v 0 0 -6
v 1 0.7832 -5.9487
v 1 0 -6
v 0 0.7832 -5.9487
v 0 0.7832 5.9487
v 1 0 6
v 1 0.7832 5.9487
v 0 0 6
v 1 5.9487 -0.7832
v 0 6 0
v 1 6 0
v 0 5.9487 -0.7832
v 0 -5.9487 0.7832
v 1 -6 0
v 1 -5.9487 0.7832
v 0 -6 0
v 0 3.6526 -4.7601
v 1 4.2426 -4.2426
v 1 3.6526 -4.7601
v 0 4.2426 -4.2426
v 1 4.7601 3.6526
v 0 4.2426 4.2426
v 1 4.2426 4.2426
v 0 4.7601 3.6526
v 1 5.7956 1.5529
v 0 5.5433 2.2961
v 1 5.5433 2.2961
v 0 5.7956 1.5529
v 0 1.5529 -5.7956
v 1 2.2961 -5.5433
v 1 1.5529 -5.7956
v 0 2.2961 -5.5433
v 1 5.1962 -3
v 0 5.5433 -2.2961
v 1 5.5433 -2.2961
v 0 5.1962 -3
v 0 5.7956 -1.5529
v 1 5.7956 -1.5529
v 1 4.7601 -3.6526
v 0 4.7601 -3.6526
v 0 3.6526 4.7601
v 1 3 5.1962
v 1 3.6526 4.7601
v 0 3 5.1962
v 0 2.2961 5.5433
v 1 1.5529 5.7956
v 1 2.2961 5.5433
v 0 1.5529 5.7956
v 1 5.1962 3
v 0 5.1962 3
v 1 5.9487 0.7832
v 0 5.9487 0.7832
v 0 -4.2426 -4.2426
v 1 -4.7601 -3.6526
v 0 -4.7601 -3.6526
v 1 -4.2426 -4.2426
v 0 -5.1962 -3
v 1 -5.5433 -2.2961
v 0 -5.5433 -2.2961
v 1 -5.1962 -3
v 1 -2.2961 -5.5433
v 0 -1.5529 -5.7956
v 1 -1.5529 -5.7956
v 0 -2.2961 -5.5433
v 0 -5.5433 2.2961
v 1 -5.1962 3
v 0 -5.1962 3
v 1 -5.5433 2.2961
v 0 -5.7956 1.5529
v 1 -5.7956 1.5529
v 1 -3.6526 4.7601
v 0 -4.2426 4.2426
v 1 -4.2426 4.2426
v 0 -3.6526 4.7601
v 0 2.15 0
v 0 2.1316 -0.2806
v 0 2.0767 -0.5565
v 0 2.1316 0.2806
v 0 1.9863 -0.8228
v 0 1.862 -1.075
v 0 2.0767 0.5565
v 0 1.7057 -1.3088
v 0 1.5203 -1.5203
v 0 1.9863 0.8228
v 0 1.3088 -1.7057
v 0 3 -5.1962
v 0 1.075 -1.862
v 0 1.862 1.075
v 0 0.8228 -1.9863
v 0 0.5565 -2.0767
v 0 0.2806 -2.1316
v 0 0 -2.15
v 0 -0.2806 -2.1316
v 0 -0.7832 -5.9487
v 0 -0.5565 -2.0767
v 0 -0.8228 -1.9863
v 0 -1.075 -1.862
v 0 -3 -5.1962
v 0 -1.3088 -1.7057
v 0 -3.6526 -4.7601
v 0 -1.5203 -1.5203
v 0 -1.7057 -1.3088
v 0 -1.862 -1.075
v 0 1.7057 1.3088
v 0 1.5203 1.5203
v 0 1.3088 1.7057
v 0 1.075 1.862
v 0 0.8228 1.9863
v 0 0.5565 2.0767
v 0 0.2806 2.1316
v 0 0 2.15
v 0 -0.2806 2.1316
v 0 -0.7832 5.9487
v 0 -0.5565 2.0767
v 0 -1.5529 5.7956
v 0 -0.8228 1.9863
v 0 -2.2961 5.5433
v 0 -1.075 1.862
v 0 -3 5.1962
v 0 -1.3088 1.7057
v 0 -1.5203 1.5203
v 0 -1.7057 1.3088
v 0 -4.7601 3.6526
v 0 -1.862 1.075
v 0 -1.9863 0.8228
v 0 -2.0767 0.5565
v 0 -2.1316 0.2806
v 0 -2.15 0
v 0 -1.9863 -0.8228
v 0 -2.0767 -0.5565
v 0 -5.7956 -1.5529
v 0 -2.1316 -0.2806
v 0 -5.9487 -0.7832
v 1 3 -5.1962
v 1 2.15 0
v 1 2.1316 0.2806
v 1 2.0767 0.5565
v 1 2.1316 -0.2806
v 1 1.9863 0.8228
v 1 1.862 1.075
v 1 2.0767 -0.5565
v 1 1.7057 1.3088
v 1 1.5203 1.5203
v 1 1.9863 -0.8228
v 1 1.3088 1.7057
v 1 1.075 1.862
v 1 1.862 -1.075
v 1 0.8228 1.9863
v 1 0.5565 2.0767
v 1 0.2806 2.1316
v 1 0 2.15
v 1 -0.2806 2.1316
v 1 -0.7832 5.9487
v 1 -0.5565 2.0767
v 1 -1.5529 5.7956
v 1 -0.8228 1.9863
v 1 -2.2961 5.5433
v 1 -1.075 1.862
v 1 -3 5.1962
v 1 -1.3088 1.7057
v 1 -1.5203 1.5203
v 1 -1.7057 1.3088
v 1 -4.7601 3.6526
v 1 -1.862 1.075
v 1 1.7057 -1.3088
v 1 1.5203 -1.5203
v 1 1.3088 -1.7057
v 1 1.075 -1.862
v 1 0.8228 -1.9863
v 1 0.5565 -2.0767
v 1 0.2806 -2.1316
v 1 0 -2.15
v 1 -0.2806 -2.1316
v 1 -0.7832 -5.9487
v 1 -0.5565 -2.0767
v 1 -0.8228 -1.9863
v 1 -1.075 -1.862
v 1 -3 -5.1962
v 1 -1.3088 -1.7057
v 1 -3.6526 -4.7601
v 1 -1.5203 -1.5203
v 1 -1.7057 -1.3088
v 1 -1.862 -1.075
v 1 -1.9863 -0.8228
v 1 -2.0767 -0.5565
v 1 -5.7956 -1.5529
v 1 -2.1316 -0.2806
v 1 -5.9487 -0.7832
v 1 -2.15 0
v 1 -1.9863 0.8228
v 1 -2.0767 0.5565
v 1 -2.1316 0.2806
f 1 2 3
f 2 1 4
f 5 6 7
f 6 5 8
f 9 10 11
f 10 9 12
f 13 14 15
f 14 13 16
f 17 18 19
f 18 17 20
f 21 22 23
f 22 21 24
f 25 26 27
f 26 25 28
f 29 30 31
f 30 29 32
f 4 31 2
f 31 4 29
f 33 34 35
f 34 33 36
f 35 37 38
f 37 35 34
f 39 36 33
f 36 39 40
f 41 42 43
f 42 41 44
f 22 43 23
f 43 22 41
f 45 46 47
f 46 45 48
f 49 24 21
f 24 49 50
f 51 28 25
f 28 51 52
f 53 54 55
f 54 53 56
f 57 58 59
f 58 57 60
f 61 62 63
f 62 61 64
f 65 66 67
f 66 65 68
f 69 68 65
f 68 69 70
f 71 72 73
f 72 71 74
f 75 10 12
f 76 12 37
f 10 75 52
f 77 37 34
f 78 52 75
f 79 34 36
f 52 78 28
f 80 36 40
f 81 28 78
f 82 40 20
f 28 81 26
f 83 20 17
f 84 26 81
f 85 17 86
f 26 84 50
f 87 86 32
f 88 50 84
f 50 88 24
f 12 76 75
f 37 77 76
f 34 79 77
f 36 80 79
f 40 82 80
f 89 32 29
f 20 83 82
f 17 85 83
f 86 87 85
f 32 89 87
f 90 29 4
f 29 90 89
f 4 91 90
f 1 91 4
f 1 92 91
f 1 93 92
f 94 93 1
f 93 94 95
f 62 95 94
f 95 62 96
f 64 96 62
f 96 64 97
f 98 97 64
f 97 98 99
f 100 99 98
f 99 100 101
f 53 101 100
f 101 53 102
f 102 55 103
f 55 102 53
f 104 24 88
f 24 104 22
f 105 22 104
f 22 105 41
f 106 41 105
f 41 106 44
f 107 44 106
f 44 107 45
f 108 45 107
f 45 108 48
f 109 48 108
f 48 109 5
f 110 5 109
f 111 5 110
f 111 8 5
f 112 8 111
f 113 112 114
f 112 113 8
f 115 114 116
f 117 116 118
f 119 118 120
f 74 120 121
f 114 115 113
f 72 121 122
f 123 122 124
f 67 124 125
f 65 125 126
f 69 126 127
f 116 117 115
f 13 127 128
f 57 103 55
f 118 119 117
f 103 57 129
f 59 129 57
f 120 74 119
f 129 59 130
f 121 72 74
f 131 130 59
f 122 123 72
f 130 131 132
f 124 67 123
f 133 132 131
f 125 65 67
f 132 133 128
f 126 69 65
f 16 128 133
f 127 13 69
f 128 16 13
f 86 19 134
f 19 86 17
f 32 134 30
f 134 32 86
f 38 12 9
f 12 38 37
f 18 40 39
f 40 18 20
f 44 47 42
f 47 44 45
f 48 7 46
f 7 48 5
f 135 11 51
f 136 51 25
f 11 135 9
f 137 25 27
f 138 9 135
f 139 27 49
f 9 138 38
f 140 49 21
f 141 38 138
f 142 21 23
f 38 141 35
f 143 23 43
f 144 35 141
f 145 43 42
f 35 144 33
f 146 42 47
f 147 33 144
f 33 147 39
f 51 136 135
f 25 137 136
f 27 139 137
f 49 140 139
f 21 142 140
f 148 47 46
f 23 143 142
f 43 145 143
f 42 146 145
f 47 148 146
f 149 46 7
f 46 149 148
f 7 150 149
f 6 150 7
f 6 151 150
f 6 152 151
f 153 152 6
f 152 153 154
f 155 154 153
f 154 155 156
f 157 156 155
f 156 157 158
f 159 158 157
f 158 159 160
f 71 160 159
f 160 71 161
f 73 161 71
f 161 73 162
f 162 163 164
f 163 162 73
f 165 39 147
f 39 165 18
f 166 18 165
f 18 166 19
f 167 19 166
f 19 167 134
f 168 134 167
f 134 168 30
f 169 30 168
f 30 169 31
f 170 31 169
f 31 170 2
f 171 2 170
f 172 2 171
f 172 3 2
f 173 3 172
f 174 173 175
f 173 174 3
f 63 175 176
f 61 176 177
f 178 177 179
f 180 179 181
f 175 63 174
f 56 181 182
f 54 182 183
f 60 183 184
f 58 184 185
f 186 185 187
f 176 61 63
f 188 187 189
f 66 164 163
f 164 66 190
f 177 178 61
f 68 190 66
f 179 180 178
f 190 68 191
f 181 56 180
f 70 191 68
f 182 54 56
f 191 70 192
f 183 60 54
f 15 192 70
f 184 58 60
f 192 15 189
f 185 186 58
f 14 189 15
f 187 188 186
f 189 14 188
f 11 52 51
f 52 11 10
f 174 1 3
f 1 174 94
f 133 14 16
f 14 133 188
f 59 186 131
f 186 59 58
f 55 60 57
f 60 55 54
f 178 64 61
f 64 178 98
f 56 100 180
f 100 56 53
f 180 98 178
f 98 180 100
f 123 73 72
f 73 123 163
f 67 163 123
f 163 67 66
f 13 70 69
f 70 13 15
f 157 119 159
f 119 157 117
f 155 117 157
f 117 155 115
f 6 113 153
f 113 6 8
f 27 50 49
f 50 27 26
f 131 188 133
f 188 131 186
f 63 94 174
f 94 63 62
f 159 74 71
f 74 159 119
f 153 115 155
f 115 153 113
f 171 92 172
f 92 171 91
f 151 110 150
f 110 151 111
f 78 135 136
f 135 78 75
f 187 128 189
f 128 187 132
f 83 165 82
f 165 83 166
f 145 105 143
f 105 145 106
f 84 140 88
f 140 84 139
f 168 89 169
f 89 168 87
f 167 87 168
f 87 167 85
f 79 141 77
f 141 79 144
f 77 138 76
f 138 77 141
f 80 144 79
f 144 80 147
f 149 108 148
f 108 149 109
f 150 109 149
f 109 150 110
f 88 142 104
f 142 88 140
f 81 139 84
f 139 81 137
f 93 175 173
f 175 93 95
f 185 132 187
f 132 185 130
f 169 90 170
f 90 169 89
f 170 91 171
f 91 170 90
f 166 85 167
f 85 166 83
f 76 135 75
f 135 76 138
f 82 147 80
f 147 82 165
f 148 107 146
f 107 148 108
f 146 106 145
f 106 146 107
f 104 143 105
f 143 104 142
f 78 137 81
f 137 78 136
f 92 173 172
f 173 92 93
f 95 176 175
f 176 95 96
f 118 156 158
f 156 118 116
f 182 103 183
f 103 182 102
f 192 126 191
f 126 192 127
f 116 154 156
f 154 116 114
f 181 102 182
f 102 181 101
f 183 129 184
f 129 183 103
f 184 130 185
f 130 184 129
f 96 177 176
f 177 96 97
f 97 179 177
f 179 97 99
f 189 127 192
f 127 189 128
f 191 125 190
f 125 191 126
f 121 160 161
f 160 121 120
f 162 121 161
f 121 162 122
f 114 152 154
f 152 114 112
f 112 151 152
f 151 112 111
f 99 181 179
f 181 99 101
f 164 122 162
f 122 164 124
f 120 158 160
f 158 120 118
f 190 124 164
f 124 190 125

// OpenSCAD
/**********************************************************************************************************************
 **
 ** parts/vitamins/washer_large_M4.scad
 **
 ** This file renders a washer of the dimensions specified by the file name.
 **
 **********************************************************************************************************************/

$fn = 48;

rotate([0, 90, 0])
	difference() {
		cylinder(d = 12.0, h = 1.0);
		cylinder(d =  4.3, h = 1.0);
	}
